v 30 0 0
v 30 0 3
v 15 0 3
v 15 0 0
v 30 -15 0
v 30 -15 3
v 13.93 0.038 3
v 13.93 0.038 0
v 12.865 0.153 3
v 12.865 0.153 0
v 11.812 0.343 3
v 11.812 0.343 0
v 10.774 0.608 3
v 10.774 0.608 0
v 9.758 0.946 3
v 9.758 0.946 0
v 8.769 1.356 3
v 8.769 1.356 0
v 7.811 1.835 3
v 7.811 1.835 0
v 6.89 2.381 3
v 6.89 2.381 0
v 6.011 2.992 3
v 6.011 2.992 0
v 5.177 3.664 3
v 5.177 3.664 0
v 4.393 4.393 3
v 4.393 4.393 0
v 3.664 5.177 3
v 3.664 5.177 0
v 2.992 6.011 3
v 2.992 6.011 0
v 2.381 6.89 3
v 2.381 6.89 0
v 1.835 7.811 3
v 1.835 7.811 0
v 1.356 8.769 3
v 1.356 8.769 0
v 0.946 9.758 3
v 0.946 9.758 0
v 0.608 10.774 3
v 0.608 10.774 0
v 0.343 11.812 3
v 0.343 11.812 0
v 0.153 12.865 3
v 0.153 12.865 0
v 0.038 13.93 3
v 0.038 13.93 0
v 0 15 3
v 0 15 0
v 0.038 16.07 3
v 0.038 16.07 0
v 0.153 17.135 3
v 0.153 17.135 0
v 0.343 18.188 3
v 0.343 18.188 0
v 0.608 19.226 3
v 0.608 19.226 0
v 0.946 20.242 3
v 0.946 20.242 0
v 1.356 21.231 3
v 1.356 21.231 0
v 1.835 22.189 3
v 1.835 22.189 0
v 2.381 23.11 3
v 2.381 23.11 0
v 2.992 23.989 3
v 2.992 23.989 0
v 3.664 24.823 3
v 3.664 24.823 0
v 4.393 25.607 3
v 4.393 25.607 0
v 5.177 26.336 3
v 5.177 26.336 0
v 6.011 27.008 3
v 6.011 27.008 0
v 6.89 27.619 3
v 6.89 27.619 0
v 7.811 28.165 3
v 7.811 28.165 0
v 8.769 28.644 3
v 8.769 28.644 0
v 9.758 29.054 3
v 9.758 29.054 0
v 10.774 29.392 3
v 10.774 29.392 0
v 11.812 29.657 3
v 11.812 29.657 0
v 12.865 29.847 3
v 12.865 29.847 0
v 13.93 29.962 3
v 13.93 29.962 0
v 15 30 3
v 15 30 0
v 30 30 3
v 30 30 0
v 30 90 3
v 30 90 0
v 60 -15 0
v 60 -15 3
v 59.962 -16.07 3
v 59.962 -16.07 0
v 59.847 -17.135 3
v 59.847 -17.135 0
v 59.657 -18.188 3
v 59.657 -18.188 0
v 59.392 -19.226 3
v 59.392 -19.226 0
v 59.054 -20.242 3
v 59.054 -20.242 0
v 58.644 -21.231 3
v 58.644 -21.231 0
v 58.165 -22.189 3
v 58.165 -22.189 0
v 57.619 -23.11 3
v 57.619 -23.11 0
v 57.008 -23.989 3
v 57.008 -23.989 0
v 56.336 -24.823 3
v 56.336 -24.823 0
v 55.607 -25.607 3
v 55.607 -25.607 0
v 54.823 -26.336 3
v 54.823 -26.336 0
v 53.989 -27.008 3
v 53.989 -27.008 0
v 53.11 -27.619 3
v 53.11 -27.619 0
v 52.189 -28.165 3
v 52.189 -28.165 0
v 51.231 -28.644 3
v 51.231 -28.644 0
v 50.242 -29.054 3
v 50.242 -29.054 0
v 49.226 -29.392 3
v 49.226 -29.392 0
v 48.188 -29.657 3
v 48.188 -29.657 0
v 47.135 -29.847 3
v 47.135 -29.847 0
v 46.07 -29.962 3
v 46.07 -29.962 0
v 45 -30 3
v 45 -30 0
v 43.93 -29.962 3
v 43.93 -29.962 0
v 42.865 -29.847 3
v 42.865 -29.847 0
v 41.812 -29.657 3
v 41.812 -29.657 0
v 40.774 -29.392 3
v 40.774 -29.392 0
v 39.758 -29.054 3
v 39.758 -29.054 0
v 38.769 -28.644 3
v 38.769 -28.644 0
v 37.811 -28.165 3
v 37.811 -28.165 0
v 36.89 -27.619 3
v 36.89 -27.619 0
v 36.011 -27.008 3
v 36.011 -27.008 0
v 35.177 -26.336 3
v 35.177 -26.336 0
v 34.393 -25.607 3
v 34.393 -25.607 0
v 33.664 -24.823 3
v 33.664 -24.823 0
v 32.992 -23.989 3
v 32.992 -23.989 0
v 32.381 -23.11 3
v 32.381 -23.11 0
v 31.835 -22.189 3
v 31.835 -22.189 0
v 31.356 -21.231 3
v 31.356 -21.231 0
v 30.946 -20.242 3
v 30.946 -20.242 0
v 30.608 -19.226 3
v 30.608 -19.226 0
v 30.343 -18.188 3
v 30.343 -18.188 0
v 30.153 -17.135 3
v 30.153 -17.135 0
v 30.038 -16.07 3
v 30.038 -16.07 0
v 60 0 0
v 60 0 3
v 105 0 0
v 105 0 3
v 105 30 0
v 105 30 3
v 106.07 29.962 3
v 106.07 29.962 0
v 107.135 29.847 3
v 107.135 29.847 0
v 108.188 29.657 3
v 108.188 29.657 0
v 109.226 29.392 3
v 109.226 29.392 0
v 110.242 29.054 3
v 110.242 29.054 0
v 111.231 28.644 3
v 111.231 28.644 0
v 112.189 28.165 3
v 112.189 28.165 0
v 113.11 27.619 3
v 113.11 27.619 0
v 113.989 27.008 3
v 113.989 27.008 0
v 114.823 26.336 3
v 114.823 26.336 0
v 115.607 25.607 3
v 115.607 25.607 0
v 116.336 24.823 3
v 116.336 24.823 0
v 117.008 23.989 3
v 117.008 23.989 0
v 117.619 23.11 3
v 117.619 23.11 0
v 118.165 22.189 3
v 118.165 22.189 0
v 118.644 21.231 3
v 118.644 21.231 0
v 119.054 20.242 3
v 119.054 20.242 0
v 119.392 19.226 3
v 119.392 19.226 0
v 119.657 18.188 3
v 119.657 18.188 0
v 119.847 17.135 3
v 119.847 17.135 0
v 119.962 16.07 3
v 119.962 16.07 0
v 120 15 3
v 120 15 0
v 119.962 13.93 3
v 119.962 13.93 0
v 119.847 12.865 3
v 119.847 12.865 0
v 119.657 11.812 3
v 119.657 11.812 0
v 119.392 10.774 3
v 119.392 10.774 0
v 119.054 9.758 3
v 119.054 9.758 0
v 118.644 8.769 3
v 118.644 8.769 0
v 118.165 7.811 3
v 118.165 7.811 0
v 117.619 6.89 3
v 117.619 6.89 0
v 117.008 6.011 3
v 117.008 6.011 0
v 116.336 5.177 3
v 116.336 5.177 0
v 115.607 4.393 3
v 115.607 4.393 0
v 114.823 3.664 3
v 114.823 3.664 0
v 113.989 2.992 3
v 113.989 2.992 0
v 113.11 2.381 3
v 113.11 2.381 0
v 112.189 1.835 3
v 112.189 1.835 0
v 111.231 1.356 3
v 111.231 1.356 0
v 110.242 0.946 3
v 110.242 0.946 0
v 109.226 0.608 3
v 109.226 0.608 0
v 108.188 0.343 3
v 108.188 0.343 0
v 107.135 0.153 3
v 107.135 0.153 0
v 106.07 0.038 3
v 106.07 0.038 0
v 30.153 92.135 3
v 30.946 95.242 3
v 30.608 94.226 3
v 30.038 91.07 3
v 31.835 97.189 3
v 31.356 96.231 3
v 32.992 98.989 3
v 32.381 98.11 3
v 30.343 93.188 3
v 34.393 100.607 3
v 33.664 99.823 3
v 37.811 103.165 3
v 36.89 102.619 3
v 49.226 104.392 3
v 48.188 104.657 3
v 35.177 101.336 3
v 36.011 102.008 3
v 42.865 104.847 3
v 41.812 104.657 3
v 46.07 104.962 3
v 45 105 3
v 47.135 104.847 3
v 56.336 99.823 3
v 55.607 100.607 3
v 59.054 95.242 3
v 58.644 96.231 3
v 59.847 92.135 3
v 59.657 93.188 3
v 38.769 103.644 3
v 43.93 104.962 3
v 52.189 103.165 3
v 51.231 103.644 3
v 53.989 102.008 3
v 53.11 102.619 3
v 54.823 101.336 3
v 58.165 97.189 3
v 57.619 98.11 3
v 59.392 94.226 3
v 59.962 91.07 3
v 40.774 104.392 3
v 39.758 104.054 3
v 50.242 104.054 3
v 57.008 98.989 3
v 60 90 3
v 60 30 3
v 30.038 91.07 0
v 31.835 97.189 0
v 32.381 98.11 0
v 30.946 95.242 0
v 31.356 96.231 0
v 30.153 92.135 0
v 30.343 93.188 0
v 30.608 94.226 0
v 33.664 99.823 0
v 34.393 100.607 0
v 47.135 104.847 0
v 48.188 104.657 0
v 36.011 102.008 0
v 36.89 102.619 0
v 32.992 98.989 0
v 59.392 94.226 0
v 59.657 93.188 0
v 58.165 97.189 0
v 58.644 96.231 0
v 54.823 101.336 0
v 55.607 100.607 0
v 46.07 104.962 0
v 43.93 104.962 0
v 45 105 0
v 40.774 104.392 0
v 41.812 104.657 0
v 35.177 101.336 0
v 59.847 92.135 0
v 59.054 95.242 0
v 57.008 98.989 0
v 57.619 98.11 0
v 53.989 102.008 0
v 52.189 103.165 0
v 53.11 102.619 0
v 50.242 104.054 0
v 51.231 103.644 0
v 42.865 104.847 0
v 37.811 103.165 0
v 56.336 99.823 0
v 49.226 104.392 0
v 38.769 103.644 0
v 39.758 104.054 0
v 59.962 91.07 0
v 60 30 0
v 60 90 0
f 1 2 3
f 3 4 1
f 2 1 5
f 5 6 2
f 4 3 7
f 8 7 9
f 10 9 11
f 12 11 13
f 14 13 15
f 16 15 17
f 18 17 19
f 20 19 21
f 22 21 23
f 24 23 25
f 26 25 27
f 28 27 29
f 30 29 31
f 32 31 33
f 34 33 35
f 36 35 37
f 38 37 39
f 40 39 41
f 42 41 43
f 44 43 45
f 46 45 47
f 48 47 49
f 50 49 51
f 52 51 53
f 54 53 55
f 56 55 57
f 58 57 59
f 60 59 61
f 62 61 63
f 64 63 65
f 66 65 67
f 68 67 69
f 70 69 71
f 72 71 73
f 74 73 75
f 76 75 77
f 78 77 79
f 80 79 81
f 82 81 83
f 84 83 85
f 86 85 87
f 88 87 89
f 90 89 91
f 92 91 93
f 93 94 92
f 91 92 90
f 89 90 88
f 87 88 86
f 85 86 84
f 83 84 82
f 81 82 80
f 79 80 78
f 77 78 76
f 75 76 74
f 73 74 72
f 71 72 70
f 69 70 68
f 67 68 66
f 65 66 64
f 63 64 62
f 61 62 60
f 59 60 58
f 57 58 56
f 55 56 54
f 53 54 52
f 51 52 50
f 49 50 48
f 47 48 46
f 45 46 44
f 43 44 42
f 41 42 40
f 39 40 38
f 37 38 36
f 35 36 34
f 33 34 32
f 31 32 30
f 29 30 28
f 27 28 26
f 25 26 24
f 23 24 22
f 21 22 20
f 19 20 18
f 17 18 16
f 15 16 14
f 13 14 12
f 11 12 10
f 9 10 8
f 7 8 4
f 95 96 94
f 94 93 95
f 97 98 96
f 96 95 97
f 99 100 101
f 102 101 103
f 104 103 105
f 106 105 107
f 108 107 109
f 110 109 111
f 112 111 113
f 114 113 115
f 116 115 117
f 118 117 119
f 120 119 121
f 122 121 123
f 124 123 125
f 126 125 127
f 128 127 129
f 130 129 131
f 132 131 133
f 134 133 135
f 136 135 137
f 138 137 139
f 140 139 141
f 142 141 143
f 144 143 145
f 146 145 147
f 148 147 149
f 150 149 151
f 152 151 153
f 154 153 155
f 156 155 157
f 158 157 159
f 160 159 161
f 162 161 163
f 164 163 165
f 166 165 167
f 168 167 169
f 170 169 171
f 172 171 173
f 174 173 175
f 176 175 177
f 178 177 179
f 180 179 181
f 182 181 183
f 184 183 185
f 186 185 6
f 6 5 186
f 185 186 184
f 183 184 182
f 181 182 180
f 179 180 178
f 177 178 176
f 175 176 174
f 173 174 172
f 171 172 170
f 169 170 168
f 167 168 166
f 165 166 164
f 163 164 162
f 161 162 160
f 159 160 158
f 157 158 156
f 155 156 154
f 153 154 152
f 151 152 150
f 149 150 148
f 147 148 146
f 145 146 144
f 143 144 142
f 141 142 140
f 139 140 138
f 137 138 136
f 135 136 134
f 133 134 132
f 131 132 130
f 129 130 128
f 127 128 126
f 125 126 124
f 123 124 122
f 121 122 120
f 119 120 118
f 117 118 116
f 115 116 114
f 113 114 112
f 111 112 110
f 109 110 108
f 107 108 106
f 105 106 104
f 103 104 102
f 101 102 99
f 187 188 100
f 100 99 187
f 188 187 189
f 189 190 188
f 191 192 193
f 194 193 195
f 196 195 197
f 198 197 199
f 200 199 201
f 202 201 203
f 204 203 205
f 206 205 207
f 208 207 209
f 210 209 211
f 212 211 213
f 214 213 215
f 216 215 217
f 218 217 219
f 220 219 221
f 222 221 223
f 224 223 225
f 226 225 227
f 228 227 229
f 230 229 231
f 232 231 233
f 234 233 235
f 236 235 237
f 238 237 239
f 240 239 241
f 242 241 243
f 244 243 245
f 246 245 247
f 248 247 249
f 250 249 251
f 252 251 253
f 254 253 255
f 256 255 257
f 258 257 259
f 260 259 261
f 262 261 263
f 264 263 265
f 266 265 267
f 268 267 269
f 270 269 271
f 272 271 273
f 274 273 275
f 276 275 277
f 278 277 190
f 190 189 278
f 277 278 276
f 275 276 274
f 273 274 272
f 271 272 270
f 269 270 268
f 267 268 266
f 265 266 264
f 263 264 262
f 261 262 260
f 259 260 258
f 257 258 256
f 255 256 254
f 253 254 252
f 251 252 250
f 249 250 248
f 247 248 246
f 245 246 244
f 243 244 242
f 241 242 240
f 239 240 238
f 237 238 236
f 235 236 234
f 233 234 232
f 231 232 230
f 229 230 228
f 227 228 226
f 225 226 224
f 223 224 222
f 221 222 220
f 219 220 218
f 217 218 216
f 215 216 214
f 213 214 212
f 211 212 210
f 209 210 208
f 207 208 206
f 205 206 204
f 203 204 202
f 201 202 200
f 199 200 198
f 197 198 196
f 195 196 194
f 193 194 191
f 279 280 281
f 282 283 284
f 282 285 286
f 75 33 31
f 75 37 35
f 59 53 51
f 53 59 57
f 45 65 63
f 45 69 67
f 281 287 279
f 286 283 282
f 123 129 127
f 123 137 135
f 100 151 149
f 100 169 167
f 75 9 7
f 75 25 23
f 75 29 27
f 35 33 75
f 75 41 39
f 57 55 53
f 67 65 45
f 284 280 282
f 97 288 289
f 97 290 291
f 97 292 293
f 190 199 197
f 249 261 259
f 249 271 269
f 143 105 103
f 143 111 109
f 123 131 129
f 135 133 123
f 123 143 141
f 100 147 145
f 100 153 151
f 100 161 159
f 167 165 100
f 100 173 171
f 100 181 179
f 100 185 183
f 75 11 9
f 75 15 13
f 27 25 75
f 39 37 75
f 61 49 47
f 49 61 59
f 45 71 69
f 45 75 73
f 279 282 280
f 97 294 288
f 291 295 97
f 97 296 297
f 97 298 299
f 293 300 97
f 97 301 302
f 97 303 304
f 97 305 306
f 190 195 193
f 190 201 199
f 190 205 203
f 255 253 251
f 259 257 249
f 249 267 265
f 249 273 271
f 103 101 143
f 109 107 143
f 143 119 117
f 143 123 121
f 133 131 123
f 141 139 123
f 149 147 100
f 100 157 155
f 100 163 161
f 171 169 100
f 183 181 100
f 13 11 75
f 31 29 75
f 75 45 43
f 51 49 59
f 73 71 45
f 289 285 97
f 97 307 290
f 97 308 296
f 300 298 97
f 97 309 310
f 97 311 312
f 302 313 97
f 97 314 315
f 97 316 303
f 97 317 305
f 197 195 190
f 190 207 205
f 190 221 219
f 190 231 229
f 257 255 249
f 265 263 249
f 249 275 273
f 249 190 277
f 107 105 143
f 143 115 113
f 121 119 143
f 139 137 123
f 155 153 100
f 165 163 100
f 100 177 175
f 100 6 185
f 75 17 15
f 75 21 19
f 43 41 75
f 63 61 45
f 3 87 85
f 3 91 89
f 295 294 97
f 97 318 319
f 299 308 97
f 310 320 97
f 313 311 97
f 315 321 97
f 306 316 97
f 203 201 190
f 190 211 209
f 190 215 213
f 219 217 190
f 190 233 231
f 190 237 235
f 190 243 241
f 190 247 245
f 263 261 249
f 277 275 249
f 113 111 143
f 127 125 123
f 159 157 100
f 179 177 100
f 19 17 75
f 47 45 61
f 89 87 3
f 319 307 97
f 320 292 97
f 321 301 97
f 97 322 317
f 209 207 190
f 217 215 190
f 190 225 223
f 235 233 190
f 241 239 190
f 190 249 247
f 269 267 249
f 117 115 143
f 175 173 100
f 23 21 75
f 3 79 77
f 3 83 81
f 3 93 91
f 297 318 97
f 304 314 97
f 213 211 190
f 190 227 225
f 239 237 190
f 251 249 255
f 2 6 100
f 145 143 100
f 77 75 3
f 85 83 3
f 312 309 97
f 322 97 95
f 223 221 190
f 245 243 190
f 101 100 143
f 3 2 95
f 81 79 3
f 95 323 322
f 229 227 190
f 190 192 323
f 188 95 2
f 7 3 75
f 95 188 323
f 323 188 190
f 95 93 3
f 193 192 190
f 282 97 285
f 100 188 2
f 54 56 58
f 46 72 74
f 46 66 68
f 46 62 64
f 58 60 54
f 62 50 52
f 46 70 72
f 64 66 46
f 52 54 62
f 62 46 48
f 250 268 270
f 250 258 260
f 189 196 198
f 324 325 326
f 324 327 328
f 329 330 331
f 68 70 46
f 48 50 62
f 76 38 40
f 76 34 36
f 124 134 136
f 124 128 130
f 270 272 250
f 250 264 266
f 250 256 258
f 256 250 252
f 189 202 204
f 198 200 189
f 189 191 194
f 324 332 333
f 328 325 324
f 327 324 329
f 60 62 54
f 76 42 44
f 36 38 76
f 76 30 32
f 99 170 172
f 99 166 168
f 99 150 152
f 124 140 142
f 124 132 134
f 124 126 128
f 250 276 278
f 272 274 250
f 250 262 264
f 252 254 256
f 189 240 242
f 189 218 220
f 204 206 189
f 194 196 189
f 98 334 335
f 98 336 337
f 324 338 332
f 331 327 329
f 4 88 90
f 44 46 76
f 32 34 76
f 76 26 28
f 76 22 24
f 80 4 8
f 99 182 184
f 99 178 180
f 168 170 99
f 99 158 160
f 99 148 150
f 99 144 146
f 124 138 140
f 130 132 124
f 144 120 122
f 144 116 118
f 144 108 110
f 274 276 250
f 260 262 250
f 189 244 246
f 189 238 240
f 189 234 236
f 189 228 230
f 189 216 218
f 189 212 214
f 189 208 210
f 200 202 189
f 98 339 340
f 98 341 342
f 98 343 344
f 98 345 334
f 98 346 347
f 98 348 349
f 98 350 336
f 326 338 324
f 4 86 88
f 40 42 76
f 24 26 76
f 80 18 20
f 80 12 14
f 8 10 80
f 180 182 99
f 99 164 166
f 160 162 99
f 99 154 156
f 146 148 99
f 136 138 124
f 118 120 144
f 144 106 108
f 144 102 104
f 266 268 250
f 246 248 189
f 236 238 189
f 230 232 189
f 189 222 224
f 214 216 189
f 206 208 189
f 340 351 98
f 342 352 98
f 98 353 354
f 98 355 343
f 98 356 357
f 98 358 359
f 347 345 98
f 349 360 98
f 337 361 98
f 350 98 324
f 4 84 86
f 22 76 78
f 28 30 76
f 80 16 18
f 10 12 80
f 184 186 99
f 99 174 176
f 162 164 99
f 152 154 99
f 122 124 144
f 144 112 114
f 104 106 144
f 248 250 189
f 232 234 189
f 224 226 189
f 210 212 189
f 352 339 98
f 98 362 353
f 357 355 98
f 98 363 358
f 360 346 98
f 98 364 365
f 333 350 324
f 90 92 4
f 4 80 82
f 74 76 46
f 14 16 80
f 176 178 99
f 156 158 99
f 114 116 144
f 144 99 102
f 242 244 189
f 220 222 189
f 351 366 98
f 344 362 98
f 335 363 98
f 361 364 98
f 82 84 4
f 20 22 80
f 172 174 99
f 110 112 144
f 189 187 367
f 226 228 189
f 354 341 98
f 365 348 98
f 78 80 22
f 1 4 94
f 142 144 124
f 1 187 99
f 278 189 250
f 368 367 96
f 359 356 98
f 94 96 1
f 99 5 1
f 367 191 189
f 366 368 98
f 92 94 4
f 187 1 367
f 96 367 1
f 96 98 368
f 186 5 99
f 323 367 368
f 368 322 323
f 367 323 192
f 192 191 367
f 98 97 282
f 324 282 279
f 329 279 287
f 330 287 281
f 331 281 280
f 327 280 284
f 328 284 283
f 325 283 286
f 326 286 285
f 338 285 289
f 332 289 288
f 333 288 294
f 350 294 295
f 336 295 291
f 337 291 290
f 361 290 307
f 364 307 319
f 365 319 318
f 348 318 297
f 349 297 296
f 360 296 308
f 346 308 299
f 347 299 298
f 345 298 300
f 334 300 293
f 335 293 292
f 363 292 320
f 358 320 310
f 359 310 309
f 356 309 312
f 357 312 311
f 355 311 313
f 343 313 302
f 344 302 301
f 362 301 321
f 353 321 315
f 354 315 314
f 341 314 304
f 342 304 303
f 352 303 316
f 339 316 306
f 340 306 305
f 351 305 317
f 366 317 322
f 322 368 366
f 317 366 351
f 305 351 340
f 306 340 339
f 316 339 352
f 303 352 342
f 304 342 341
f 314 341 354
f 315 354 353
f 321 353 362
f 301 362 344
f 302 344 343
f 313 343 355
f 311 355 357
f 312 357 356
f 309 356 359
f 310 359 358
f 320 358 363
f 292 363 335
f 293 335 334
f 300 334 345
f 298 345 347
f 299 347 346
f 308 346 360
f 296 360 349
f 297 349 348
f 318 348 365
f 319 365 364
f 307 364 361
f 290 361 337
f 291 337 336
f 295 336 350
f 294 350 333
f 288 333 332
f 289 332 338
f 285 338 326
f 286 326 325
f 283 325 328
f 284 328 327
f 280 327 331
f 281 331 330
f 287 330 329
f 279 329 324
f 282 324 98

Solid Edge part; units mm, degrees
sketch "Sketch1" plane through (0, 0, 0) normal (0, 0, 1) x (1, 0, 0)
  line L0 (30, 105) -> (30, 30)
  line L1 (30, 30) -> (60, 30)
  line L2 (60, 30) -> (60, 105)
  line L3 (60, 105) -> (30, 105)
  line L4 (120, 30) -> (0, 30)
  line L5 (0, 30) -> (0, 0)
  line L6 (0, 0) -> (120, 0)
  line L7 (120, 0) -> (120, 30)
  line L8 (60, 0) -> (60, -30)
  line L9 (60, -30) -> (30, -30)
  line L10 (30, -30) -> (30, 0)
  line L11 (30, 0) -> (60, 0)
  dimension "D1" = 30
  dimension "D2" = 30
  dimension "D3" = 30
  dimension "D4" = 120
  dimension "D5" = 30
  dimension "D6" = 75
extrude "Protrusion1" add sketch "Sketch1" along normal blind 3
fillet "RoundMain" radius 15 8 edges at (0, 30, 1.5) (30, 105, 1.5) (60, 105, 1.5) (120, 30, 1.5) (120, 0, 1.5) (0, 0, 1.5) (60, -30, 1.5) (30, -30, 1.5)
